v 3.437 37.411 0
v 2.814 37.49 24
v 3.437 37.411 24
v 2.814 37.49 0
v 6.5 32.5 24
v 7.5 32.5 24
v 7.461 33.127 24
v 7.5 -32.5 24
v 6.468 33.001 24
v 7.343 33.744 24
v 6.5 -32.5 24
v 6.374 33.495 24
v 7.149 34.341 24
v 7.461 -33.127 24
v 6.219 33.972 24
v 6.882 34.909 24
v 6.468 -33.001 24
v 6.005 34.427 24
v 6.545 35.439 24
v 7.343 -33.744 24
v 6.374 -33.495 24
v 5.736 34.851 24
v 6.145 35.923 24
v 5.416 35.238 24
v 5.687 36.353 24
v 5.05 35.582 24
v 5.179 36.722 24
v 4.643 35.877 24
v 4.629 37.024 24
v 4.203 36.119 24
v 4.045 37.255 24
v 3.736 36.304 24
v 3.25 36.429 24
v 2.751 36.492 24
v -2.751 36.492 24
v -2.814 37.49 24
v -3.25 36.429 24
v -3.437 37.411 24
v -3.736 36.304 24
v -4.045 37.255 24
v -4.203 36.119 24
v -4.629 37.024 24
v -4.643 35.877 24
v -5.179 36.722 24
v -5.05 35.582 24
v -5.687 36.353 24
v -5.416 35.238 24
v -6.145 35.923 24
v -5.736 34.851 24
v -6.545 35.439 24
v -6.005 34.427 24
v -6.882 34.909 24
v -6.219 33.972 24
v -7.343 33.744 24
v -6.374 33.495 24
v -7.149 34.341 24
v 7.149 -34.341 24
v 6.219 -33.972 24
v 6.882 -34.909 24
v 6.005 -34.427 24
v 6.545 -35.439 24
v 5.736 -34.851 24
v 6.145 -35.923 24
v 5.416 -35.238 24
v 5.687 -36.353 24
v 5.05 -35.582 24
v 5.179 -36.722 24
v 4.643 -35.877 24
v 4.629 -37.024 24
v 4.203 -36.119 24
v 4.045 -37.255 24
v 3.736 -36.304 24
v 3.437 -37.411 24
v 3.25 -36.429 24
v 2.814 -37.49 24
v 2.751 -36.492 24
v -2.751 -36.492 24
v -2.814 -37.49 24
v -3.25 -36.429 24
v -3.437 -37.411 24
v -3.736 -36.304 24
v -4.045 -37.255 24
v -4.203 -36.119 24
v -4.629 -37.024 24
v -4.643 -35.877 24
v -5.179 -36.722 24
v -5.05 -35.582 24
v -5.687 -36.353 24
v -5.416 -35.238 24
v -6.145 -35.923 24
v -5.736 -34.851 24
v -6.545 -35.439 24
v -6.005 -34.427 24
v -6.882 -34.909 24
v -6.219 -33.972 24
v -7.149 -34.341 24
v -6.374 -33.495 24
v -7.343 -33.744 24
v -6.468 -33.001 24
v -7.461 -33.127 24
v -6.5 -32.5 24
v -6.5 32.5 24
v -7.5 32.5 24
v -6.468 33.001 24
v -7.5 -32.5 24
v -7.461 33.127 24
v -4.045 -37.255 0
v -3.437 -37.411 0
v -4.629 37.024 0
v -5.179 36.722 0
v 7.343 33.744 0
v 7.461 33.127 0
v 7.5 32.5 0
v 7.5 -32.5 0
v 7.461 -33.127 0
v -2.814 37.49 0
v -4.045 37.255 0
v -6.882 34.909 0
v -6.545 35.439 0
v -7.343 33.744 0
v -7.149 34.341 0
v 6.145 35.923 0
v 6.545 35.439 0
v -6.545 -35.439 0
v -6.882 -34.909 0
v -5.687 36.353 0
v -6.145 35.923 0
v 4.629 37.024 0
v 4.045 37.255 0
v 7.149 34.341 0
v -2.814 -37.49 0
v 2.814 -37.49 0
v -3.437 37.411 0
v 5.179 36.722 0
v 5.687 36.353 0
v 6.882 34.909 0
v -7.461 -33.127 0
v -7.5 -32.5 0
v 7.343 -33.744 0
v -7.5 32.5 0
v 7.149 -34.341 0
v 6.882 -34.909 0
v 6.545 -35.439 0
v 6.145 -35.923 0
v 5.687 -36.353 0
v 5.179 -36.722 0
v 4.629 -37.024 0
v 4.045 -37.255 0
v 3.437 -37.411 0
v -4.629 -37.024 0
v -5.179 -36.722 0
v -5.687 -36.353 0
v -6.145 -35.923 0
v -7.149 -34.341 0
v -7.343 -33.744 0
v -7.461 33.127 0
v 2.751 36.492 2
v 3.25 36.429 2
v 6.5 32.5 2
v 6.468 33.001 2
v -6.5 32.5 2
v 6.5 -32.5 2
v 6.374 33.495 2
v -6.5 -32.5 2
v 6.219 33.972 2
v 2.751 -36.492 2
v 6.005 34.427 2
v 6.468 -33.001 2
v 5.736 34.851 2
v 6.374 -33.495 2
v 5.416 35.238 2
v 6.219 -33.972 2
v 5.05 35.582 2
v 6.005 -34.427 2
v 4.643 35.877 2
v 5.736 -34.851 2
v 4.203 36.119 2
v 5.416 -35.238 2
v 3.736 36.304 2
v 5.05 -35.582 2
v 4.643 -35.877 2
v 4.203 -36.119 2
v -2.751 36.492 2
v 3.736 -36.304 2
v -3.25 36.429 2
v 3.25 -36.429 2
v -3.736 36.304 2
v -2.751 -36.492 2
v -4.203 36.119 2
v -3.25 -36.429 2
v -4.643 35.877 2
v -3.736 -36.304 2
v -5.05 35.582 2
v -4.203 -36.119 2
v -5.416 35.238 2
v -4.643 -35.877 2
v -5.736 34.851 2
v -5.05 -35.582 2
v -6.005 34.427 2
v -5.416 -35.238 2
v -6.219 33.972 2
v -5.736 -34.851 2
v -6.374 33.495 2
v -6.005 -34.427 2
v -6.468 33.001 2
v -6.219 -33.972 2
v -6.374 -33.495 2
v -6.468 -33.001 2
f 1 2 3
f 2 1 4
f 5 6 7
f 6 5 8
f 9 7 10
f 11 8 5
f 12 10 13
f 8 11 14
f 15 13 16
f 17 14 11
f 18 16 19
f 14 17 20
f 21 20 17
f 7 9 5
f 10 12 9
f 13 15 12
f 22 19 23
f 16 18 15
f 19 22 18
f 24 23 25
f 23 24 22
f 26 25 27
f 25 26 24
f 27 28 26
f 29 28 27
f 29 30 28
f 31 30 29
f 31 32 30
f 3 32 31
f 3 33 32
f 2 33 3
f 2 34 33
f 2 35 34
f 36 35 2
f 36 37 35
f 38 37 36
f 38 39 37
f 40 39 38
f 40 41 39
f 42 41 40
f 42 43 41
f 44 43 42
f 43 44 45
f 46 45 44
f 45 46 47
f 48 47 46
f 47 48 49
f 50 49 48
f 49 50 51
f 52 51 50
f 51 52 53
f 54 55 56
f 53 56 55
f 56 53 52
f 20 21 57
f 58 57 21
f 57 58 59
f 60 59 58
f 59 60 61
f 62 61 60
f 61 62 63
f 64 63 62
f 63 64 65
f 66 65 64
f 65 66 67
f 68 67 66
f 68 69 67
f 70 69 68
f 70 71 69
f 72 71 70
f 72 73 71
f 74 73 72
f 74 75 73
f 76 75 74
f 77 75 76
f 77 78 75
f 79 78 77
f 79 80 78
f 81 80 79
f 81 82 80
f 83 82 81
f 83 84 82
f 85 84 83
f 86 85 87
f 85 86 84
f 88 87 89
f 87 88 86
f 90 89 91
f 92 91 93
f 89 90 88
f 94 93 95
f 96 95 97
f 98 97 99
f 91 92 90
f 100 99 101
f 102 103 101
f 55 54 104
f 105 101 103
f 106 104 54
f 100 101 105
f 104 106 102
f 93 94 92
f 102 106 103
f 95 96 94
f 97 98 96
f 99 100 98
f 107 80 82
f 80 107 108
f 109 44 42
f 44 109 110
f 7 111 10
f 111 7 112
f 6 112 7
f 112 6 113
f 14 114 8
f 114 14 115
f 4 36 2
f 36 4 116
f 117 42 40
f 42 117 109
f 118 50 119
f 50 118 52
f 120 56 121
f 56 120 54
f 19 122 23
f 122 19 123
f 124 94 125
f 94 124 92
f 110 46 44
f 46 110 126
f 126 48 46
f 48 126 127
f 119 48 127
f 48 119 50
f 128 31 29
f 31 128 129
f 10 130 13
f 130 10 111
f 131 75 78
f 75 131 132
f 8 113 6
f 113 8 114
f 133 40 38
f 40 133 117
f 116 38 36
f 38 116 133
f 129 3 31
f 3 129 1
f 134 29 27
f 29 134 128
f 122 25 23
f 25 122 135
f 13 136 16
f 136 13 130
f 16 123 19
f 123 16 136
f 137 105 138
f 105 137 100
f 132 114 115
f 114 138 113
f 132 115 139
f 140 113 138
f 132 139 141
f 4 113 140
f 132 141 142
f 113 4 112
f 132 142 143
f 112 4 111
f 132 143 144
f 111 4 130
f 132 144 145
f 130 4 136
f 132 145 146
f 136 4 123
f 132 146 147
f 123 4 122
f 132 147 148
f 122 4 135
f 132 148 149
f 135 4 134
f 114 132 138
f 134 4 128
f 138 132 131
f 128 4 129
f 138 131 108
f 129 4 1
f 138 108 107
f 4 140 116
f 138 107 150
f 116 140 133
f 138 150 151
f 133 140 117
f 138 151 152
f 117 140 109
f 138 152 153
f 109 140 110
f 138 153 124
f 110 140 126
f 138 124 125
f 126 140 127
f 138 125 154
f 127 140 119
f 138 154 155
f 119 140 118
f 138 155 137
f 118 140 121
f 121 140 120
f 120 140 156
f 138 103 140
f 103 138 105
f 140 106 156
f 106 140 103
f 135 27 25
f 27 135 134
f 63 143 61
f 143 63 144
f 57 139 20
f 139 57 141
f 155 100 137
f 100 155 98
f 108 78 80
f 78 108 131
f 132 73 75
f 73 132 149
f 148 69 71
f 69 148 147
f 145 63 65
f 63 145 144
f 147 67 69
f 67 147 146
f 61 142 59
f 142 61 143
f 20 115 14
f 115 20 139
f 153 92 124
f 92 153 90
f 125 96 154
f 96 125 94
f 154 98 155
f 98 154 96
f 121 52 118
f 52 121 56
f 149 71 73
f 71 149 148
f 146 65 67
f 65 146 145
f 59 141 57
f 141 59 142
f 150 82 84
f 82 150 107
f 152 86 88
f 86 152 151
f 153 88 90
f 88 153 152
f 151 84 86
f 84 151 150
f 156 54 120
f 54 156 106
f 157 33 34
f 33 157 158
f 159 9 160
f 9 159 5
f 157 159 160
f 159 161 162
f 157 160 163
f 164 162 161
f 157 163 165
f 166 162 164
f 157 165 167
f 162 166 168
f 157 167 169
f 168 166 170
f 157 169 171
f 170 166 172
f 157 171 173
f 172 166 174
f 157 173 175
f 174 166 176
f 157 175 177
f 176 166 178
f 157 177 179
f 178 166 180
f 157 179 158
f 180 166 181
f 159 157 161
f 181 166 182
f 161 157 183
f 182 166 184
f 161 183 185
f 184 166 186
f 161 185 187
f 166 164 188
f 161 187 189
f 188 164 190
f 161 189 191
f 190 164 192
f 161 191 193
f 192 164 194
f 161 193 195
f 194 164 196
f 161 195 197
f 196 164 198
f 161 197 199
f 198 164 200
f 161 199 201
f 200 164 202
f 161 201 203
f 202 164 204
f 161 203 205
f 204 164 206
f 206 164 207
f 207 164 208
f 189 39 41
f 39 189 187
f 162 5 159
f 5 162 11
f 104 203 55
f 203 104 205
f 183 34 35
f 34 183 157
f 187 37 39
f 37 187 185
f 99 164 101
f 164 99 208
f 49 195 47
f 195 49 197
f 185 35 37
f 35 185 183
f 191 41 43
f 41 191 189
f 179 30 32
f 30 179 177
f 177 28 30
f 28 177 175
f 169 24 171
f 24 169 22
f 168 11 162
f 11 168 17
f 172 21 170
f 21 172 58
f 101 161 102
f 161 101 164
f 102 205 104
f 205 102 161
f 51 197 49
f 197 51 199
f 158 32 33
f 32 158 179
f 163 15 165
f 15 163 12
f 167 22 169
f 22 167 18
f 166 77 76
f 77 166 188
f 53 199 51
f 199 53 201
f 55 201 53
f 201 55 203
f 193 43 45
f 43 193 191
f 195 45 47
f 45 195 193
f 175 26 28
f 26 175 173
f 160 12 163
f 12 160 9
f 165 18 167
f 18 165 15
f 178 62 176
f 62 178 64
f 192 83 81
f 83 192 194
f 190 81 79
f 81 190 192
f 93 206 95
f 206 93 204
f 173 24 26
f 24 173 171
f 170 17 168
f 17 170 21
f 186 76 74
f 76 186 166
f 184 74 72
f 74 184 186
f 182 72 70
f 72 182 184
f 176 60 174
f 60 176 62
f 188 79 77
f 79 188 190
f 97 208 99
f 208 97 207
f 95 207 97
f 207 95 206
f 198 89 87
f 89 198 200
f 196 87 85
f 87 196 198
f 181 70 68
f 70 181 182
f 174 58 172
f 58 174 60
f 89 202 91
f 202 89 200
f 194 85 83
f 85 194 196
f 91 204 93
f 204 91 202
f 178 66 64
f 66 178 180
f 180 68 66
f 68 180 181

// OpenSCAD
$fn = 50;


difference() {
	union() {
		hull() {
			translate(v = [-2.5000000000, 32.5000000000, 0]) {
				cylinder(h = 24, r = 5);
			}
			translate(v = [2.5000000000, 32.5000000000, 0]) {
				cylinder(h = 24, r = 5);
			}
			translate(v = [-2.5000000000, -32.5000000000, 0]) {
				cylinder(h = 24, r = 5);
			}
			translate(v = [2.5000000000, -32.5000000000, 0]) {
				cylinder(h = 24, r = 5);
			}
		}
	}
	union() {
		translate(v = [0, 0, 2]) {
			hull() {
				translate(v = [-2.5000000000, 32.5000000000, 0]) {
					cylinder(h = 22, r = 4);
				}
				translate(v = [2.5000000000, 32.5000000000, 0]) {
					cylinder(h = 22, r = 4);
				}
				translate(v = [-2.5000000000, -32.5000000000, 0]) {
					cylinder(h = 22, r = 4);
				}
				translate(v = [2.5000000000, -32.5000000000, 0]) {
					cylinder(h = 22, r = 4);
				}
			}
		}
	}
}
